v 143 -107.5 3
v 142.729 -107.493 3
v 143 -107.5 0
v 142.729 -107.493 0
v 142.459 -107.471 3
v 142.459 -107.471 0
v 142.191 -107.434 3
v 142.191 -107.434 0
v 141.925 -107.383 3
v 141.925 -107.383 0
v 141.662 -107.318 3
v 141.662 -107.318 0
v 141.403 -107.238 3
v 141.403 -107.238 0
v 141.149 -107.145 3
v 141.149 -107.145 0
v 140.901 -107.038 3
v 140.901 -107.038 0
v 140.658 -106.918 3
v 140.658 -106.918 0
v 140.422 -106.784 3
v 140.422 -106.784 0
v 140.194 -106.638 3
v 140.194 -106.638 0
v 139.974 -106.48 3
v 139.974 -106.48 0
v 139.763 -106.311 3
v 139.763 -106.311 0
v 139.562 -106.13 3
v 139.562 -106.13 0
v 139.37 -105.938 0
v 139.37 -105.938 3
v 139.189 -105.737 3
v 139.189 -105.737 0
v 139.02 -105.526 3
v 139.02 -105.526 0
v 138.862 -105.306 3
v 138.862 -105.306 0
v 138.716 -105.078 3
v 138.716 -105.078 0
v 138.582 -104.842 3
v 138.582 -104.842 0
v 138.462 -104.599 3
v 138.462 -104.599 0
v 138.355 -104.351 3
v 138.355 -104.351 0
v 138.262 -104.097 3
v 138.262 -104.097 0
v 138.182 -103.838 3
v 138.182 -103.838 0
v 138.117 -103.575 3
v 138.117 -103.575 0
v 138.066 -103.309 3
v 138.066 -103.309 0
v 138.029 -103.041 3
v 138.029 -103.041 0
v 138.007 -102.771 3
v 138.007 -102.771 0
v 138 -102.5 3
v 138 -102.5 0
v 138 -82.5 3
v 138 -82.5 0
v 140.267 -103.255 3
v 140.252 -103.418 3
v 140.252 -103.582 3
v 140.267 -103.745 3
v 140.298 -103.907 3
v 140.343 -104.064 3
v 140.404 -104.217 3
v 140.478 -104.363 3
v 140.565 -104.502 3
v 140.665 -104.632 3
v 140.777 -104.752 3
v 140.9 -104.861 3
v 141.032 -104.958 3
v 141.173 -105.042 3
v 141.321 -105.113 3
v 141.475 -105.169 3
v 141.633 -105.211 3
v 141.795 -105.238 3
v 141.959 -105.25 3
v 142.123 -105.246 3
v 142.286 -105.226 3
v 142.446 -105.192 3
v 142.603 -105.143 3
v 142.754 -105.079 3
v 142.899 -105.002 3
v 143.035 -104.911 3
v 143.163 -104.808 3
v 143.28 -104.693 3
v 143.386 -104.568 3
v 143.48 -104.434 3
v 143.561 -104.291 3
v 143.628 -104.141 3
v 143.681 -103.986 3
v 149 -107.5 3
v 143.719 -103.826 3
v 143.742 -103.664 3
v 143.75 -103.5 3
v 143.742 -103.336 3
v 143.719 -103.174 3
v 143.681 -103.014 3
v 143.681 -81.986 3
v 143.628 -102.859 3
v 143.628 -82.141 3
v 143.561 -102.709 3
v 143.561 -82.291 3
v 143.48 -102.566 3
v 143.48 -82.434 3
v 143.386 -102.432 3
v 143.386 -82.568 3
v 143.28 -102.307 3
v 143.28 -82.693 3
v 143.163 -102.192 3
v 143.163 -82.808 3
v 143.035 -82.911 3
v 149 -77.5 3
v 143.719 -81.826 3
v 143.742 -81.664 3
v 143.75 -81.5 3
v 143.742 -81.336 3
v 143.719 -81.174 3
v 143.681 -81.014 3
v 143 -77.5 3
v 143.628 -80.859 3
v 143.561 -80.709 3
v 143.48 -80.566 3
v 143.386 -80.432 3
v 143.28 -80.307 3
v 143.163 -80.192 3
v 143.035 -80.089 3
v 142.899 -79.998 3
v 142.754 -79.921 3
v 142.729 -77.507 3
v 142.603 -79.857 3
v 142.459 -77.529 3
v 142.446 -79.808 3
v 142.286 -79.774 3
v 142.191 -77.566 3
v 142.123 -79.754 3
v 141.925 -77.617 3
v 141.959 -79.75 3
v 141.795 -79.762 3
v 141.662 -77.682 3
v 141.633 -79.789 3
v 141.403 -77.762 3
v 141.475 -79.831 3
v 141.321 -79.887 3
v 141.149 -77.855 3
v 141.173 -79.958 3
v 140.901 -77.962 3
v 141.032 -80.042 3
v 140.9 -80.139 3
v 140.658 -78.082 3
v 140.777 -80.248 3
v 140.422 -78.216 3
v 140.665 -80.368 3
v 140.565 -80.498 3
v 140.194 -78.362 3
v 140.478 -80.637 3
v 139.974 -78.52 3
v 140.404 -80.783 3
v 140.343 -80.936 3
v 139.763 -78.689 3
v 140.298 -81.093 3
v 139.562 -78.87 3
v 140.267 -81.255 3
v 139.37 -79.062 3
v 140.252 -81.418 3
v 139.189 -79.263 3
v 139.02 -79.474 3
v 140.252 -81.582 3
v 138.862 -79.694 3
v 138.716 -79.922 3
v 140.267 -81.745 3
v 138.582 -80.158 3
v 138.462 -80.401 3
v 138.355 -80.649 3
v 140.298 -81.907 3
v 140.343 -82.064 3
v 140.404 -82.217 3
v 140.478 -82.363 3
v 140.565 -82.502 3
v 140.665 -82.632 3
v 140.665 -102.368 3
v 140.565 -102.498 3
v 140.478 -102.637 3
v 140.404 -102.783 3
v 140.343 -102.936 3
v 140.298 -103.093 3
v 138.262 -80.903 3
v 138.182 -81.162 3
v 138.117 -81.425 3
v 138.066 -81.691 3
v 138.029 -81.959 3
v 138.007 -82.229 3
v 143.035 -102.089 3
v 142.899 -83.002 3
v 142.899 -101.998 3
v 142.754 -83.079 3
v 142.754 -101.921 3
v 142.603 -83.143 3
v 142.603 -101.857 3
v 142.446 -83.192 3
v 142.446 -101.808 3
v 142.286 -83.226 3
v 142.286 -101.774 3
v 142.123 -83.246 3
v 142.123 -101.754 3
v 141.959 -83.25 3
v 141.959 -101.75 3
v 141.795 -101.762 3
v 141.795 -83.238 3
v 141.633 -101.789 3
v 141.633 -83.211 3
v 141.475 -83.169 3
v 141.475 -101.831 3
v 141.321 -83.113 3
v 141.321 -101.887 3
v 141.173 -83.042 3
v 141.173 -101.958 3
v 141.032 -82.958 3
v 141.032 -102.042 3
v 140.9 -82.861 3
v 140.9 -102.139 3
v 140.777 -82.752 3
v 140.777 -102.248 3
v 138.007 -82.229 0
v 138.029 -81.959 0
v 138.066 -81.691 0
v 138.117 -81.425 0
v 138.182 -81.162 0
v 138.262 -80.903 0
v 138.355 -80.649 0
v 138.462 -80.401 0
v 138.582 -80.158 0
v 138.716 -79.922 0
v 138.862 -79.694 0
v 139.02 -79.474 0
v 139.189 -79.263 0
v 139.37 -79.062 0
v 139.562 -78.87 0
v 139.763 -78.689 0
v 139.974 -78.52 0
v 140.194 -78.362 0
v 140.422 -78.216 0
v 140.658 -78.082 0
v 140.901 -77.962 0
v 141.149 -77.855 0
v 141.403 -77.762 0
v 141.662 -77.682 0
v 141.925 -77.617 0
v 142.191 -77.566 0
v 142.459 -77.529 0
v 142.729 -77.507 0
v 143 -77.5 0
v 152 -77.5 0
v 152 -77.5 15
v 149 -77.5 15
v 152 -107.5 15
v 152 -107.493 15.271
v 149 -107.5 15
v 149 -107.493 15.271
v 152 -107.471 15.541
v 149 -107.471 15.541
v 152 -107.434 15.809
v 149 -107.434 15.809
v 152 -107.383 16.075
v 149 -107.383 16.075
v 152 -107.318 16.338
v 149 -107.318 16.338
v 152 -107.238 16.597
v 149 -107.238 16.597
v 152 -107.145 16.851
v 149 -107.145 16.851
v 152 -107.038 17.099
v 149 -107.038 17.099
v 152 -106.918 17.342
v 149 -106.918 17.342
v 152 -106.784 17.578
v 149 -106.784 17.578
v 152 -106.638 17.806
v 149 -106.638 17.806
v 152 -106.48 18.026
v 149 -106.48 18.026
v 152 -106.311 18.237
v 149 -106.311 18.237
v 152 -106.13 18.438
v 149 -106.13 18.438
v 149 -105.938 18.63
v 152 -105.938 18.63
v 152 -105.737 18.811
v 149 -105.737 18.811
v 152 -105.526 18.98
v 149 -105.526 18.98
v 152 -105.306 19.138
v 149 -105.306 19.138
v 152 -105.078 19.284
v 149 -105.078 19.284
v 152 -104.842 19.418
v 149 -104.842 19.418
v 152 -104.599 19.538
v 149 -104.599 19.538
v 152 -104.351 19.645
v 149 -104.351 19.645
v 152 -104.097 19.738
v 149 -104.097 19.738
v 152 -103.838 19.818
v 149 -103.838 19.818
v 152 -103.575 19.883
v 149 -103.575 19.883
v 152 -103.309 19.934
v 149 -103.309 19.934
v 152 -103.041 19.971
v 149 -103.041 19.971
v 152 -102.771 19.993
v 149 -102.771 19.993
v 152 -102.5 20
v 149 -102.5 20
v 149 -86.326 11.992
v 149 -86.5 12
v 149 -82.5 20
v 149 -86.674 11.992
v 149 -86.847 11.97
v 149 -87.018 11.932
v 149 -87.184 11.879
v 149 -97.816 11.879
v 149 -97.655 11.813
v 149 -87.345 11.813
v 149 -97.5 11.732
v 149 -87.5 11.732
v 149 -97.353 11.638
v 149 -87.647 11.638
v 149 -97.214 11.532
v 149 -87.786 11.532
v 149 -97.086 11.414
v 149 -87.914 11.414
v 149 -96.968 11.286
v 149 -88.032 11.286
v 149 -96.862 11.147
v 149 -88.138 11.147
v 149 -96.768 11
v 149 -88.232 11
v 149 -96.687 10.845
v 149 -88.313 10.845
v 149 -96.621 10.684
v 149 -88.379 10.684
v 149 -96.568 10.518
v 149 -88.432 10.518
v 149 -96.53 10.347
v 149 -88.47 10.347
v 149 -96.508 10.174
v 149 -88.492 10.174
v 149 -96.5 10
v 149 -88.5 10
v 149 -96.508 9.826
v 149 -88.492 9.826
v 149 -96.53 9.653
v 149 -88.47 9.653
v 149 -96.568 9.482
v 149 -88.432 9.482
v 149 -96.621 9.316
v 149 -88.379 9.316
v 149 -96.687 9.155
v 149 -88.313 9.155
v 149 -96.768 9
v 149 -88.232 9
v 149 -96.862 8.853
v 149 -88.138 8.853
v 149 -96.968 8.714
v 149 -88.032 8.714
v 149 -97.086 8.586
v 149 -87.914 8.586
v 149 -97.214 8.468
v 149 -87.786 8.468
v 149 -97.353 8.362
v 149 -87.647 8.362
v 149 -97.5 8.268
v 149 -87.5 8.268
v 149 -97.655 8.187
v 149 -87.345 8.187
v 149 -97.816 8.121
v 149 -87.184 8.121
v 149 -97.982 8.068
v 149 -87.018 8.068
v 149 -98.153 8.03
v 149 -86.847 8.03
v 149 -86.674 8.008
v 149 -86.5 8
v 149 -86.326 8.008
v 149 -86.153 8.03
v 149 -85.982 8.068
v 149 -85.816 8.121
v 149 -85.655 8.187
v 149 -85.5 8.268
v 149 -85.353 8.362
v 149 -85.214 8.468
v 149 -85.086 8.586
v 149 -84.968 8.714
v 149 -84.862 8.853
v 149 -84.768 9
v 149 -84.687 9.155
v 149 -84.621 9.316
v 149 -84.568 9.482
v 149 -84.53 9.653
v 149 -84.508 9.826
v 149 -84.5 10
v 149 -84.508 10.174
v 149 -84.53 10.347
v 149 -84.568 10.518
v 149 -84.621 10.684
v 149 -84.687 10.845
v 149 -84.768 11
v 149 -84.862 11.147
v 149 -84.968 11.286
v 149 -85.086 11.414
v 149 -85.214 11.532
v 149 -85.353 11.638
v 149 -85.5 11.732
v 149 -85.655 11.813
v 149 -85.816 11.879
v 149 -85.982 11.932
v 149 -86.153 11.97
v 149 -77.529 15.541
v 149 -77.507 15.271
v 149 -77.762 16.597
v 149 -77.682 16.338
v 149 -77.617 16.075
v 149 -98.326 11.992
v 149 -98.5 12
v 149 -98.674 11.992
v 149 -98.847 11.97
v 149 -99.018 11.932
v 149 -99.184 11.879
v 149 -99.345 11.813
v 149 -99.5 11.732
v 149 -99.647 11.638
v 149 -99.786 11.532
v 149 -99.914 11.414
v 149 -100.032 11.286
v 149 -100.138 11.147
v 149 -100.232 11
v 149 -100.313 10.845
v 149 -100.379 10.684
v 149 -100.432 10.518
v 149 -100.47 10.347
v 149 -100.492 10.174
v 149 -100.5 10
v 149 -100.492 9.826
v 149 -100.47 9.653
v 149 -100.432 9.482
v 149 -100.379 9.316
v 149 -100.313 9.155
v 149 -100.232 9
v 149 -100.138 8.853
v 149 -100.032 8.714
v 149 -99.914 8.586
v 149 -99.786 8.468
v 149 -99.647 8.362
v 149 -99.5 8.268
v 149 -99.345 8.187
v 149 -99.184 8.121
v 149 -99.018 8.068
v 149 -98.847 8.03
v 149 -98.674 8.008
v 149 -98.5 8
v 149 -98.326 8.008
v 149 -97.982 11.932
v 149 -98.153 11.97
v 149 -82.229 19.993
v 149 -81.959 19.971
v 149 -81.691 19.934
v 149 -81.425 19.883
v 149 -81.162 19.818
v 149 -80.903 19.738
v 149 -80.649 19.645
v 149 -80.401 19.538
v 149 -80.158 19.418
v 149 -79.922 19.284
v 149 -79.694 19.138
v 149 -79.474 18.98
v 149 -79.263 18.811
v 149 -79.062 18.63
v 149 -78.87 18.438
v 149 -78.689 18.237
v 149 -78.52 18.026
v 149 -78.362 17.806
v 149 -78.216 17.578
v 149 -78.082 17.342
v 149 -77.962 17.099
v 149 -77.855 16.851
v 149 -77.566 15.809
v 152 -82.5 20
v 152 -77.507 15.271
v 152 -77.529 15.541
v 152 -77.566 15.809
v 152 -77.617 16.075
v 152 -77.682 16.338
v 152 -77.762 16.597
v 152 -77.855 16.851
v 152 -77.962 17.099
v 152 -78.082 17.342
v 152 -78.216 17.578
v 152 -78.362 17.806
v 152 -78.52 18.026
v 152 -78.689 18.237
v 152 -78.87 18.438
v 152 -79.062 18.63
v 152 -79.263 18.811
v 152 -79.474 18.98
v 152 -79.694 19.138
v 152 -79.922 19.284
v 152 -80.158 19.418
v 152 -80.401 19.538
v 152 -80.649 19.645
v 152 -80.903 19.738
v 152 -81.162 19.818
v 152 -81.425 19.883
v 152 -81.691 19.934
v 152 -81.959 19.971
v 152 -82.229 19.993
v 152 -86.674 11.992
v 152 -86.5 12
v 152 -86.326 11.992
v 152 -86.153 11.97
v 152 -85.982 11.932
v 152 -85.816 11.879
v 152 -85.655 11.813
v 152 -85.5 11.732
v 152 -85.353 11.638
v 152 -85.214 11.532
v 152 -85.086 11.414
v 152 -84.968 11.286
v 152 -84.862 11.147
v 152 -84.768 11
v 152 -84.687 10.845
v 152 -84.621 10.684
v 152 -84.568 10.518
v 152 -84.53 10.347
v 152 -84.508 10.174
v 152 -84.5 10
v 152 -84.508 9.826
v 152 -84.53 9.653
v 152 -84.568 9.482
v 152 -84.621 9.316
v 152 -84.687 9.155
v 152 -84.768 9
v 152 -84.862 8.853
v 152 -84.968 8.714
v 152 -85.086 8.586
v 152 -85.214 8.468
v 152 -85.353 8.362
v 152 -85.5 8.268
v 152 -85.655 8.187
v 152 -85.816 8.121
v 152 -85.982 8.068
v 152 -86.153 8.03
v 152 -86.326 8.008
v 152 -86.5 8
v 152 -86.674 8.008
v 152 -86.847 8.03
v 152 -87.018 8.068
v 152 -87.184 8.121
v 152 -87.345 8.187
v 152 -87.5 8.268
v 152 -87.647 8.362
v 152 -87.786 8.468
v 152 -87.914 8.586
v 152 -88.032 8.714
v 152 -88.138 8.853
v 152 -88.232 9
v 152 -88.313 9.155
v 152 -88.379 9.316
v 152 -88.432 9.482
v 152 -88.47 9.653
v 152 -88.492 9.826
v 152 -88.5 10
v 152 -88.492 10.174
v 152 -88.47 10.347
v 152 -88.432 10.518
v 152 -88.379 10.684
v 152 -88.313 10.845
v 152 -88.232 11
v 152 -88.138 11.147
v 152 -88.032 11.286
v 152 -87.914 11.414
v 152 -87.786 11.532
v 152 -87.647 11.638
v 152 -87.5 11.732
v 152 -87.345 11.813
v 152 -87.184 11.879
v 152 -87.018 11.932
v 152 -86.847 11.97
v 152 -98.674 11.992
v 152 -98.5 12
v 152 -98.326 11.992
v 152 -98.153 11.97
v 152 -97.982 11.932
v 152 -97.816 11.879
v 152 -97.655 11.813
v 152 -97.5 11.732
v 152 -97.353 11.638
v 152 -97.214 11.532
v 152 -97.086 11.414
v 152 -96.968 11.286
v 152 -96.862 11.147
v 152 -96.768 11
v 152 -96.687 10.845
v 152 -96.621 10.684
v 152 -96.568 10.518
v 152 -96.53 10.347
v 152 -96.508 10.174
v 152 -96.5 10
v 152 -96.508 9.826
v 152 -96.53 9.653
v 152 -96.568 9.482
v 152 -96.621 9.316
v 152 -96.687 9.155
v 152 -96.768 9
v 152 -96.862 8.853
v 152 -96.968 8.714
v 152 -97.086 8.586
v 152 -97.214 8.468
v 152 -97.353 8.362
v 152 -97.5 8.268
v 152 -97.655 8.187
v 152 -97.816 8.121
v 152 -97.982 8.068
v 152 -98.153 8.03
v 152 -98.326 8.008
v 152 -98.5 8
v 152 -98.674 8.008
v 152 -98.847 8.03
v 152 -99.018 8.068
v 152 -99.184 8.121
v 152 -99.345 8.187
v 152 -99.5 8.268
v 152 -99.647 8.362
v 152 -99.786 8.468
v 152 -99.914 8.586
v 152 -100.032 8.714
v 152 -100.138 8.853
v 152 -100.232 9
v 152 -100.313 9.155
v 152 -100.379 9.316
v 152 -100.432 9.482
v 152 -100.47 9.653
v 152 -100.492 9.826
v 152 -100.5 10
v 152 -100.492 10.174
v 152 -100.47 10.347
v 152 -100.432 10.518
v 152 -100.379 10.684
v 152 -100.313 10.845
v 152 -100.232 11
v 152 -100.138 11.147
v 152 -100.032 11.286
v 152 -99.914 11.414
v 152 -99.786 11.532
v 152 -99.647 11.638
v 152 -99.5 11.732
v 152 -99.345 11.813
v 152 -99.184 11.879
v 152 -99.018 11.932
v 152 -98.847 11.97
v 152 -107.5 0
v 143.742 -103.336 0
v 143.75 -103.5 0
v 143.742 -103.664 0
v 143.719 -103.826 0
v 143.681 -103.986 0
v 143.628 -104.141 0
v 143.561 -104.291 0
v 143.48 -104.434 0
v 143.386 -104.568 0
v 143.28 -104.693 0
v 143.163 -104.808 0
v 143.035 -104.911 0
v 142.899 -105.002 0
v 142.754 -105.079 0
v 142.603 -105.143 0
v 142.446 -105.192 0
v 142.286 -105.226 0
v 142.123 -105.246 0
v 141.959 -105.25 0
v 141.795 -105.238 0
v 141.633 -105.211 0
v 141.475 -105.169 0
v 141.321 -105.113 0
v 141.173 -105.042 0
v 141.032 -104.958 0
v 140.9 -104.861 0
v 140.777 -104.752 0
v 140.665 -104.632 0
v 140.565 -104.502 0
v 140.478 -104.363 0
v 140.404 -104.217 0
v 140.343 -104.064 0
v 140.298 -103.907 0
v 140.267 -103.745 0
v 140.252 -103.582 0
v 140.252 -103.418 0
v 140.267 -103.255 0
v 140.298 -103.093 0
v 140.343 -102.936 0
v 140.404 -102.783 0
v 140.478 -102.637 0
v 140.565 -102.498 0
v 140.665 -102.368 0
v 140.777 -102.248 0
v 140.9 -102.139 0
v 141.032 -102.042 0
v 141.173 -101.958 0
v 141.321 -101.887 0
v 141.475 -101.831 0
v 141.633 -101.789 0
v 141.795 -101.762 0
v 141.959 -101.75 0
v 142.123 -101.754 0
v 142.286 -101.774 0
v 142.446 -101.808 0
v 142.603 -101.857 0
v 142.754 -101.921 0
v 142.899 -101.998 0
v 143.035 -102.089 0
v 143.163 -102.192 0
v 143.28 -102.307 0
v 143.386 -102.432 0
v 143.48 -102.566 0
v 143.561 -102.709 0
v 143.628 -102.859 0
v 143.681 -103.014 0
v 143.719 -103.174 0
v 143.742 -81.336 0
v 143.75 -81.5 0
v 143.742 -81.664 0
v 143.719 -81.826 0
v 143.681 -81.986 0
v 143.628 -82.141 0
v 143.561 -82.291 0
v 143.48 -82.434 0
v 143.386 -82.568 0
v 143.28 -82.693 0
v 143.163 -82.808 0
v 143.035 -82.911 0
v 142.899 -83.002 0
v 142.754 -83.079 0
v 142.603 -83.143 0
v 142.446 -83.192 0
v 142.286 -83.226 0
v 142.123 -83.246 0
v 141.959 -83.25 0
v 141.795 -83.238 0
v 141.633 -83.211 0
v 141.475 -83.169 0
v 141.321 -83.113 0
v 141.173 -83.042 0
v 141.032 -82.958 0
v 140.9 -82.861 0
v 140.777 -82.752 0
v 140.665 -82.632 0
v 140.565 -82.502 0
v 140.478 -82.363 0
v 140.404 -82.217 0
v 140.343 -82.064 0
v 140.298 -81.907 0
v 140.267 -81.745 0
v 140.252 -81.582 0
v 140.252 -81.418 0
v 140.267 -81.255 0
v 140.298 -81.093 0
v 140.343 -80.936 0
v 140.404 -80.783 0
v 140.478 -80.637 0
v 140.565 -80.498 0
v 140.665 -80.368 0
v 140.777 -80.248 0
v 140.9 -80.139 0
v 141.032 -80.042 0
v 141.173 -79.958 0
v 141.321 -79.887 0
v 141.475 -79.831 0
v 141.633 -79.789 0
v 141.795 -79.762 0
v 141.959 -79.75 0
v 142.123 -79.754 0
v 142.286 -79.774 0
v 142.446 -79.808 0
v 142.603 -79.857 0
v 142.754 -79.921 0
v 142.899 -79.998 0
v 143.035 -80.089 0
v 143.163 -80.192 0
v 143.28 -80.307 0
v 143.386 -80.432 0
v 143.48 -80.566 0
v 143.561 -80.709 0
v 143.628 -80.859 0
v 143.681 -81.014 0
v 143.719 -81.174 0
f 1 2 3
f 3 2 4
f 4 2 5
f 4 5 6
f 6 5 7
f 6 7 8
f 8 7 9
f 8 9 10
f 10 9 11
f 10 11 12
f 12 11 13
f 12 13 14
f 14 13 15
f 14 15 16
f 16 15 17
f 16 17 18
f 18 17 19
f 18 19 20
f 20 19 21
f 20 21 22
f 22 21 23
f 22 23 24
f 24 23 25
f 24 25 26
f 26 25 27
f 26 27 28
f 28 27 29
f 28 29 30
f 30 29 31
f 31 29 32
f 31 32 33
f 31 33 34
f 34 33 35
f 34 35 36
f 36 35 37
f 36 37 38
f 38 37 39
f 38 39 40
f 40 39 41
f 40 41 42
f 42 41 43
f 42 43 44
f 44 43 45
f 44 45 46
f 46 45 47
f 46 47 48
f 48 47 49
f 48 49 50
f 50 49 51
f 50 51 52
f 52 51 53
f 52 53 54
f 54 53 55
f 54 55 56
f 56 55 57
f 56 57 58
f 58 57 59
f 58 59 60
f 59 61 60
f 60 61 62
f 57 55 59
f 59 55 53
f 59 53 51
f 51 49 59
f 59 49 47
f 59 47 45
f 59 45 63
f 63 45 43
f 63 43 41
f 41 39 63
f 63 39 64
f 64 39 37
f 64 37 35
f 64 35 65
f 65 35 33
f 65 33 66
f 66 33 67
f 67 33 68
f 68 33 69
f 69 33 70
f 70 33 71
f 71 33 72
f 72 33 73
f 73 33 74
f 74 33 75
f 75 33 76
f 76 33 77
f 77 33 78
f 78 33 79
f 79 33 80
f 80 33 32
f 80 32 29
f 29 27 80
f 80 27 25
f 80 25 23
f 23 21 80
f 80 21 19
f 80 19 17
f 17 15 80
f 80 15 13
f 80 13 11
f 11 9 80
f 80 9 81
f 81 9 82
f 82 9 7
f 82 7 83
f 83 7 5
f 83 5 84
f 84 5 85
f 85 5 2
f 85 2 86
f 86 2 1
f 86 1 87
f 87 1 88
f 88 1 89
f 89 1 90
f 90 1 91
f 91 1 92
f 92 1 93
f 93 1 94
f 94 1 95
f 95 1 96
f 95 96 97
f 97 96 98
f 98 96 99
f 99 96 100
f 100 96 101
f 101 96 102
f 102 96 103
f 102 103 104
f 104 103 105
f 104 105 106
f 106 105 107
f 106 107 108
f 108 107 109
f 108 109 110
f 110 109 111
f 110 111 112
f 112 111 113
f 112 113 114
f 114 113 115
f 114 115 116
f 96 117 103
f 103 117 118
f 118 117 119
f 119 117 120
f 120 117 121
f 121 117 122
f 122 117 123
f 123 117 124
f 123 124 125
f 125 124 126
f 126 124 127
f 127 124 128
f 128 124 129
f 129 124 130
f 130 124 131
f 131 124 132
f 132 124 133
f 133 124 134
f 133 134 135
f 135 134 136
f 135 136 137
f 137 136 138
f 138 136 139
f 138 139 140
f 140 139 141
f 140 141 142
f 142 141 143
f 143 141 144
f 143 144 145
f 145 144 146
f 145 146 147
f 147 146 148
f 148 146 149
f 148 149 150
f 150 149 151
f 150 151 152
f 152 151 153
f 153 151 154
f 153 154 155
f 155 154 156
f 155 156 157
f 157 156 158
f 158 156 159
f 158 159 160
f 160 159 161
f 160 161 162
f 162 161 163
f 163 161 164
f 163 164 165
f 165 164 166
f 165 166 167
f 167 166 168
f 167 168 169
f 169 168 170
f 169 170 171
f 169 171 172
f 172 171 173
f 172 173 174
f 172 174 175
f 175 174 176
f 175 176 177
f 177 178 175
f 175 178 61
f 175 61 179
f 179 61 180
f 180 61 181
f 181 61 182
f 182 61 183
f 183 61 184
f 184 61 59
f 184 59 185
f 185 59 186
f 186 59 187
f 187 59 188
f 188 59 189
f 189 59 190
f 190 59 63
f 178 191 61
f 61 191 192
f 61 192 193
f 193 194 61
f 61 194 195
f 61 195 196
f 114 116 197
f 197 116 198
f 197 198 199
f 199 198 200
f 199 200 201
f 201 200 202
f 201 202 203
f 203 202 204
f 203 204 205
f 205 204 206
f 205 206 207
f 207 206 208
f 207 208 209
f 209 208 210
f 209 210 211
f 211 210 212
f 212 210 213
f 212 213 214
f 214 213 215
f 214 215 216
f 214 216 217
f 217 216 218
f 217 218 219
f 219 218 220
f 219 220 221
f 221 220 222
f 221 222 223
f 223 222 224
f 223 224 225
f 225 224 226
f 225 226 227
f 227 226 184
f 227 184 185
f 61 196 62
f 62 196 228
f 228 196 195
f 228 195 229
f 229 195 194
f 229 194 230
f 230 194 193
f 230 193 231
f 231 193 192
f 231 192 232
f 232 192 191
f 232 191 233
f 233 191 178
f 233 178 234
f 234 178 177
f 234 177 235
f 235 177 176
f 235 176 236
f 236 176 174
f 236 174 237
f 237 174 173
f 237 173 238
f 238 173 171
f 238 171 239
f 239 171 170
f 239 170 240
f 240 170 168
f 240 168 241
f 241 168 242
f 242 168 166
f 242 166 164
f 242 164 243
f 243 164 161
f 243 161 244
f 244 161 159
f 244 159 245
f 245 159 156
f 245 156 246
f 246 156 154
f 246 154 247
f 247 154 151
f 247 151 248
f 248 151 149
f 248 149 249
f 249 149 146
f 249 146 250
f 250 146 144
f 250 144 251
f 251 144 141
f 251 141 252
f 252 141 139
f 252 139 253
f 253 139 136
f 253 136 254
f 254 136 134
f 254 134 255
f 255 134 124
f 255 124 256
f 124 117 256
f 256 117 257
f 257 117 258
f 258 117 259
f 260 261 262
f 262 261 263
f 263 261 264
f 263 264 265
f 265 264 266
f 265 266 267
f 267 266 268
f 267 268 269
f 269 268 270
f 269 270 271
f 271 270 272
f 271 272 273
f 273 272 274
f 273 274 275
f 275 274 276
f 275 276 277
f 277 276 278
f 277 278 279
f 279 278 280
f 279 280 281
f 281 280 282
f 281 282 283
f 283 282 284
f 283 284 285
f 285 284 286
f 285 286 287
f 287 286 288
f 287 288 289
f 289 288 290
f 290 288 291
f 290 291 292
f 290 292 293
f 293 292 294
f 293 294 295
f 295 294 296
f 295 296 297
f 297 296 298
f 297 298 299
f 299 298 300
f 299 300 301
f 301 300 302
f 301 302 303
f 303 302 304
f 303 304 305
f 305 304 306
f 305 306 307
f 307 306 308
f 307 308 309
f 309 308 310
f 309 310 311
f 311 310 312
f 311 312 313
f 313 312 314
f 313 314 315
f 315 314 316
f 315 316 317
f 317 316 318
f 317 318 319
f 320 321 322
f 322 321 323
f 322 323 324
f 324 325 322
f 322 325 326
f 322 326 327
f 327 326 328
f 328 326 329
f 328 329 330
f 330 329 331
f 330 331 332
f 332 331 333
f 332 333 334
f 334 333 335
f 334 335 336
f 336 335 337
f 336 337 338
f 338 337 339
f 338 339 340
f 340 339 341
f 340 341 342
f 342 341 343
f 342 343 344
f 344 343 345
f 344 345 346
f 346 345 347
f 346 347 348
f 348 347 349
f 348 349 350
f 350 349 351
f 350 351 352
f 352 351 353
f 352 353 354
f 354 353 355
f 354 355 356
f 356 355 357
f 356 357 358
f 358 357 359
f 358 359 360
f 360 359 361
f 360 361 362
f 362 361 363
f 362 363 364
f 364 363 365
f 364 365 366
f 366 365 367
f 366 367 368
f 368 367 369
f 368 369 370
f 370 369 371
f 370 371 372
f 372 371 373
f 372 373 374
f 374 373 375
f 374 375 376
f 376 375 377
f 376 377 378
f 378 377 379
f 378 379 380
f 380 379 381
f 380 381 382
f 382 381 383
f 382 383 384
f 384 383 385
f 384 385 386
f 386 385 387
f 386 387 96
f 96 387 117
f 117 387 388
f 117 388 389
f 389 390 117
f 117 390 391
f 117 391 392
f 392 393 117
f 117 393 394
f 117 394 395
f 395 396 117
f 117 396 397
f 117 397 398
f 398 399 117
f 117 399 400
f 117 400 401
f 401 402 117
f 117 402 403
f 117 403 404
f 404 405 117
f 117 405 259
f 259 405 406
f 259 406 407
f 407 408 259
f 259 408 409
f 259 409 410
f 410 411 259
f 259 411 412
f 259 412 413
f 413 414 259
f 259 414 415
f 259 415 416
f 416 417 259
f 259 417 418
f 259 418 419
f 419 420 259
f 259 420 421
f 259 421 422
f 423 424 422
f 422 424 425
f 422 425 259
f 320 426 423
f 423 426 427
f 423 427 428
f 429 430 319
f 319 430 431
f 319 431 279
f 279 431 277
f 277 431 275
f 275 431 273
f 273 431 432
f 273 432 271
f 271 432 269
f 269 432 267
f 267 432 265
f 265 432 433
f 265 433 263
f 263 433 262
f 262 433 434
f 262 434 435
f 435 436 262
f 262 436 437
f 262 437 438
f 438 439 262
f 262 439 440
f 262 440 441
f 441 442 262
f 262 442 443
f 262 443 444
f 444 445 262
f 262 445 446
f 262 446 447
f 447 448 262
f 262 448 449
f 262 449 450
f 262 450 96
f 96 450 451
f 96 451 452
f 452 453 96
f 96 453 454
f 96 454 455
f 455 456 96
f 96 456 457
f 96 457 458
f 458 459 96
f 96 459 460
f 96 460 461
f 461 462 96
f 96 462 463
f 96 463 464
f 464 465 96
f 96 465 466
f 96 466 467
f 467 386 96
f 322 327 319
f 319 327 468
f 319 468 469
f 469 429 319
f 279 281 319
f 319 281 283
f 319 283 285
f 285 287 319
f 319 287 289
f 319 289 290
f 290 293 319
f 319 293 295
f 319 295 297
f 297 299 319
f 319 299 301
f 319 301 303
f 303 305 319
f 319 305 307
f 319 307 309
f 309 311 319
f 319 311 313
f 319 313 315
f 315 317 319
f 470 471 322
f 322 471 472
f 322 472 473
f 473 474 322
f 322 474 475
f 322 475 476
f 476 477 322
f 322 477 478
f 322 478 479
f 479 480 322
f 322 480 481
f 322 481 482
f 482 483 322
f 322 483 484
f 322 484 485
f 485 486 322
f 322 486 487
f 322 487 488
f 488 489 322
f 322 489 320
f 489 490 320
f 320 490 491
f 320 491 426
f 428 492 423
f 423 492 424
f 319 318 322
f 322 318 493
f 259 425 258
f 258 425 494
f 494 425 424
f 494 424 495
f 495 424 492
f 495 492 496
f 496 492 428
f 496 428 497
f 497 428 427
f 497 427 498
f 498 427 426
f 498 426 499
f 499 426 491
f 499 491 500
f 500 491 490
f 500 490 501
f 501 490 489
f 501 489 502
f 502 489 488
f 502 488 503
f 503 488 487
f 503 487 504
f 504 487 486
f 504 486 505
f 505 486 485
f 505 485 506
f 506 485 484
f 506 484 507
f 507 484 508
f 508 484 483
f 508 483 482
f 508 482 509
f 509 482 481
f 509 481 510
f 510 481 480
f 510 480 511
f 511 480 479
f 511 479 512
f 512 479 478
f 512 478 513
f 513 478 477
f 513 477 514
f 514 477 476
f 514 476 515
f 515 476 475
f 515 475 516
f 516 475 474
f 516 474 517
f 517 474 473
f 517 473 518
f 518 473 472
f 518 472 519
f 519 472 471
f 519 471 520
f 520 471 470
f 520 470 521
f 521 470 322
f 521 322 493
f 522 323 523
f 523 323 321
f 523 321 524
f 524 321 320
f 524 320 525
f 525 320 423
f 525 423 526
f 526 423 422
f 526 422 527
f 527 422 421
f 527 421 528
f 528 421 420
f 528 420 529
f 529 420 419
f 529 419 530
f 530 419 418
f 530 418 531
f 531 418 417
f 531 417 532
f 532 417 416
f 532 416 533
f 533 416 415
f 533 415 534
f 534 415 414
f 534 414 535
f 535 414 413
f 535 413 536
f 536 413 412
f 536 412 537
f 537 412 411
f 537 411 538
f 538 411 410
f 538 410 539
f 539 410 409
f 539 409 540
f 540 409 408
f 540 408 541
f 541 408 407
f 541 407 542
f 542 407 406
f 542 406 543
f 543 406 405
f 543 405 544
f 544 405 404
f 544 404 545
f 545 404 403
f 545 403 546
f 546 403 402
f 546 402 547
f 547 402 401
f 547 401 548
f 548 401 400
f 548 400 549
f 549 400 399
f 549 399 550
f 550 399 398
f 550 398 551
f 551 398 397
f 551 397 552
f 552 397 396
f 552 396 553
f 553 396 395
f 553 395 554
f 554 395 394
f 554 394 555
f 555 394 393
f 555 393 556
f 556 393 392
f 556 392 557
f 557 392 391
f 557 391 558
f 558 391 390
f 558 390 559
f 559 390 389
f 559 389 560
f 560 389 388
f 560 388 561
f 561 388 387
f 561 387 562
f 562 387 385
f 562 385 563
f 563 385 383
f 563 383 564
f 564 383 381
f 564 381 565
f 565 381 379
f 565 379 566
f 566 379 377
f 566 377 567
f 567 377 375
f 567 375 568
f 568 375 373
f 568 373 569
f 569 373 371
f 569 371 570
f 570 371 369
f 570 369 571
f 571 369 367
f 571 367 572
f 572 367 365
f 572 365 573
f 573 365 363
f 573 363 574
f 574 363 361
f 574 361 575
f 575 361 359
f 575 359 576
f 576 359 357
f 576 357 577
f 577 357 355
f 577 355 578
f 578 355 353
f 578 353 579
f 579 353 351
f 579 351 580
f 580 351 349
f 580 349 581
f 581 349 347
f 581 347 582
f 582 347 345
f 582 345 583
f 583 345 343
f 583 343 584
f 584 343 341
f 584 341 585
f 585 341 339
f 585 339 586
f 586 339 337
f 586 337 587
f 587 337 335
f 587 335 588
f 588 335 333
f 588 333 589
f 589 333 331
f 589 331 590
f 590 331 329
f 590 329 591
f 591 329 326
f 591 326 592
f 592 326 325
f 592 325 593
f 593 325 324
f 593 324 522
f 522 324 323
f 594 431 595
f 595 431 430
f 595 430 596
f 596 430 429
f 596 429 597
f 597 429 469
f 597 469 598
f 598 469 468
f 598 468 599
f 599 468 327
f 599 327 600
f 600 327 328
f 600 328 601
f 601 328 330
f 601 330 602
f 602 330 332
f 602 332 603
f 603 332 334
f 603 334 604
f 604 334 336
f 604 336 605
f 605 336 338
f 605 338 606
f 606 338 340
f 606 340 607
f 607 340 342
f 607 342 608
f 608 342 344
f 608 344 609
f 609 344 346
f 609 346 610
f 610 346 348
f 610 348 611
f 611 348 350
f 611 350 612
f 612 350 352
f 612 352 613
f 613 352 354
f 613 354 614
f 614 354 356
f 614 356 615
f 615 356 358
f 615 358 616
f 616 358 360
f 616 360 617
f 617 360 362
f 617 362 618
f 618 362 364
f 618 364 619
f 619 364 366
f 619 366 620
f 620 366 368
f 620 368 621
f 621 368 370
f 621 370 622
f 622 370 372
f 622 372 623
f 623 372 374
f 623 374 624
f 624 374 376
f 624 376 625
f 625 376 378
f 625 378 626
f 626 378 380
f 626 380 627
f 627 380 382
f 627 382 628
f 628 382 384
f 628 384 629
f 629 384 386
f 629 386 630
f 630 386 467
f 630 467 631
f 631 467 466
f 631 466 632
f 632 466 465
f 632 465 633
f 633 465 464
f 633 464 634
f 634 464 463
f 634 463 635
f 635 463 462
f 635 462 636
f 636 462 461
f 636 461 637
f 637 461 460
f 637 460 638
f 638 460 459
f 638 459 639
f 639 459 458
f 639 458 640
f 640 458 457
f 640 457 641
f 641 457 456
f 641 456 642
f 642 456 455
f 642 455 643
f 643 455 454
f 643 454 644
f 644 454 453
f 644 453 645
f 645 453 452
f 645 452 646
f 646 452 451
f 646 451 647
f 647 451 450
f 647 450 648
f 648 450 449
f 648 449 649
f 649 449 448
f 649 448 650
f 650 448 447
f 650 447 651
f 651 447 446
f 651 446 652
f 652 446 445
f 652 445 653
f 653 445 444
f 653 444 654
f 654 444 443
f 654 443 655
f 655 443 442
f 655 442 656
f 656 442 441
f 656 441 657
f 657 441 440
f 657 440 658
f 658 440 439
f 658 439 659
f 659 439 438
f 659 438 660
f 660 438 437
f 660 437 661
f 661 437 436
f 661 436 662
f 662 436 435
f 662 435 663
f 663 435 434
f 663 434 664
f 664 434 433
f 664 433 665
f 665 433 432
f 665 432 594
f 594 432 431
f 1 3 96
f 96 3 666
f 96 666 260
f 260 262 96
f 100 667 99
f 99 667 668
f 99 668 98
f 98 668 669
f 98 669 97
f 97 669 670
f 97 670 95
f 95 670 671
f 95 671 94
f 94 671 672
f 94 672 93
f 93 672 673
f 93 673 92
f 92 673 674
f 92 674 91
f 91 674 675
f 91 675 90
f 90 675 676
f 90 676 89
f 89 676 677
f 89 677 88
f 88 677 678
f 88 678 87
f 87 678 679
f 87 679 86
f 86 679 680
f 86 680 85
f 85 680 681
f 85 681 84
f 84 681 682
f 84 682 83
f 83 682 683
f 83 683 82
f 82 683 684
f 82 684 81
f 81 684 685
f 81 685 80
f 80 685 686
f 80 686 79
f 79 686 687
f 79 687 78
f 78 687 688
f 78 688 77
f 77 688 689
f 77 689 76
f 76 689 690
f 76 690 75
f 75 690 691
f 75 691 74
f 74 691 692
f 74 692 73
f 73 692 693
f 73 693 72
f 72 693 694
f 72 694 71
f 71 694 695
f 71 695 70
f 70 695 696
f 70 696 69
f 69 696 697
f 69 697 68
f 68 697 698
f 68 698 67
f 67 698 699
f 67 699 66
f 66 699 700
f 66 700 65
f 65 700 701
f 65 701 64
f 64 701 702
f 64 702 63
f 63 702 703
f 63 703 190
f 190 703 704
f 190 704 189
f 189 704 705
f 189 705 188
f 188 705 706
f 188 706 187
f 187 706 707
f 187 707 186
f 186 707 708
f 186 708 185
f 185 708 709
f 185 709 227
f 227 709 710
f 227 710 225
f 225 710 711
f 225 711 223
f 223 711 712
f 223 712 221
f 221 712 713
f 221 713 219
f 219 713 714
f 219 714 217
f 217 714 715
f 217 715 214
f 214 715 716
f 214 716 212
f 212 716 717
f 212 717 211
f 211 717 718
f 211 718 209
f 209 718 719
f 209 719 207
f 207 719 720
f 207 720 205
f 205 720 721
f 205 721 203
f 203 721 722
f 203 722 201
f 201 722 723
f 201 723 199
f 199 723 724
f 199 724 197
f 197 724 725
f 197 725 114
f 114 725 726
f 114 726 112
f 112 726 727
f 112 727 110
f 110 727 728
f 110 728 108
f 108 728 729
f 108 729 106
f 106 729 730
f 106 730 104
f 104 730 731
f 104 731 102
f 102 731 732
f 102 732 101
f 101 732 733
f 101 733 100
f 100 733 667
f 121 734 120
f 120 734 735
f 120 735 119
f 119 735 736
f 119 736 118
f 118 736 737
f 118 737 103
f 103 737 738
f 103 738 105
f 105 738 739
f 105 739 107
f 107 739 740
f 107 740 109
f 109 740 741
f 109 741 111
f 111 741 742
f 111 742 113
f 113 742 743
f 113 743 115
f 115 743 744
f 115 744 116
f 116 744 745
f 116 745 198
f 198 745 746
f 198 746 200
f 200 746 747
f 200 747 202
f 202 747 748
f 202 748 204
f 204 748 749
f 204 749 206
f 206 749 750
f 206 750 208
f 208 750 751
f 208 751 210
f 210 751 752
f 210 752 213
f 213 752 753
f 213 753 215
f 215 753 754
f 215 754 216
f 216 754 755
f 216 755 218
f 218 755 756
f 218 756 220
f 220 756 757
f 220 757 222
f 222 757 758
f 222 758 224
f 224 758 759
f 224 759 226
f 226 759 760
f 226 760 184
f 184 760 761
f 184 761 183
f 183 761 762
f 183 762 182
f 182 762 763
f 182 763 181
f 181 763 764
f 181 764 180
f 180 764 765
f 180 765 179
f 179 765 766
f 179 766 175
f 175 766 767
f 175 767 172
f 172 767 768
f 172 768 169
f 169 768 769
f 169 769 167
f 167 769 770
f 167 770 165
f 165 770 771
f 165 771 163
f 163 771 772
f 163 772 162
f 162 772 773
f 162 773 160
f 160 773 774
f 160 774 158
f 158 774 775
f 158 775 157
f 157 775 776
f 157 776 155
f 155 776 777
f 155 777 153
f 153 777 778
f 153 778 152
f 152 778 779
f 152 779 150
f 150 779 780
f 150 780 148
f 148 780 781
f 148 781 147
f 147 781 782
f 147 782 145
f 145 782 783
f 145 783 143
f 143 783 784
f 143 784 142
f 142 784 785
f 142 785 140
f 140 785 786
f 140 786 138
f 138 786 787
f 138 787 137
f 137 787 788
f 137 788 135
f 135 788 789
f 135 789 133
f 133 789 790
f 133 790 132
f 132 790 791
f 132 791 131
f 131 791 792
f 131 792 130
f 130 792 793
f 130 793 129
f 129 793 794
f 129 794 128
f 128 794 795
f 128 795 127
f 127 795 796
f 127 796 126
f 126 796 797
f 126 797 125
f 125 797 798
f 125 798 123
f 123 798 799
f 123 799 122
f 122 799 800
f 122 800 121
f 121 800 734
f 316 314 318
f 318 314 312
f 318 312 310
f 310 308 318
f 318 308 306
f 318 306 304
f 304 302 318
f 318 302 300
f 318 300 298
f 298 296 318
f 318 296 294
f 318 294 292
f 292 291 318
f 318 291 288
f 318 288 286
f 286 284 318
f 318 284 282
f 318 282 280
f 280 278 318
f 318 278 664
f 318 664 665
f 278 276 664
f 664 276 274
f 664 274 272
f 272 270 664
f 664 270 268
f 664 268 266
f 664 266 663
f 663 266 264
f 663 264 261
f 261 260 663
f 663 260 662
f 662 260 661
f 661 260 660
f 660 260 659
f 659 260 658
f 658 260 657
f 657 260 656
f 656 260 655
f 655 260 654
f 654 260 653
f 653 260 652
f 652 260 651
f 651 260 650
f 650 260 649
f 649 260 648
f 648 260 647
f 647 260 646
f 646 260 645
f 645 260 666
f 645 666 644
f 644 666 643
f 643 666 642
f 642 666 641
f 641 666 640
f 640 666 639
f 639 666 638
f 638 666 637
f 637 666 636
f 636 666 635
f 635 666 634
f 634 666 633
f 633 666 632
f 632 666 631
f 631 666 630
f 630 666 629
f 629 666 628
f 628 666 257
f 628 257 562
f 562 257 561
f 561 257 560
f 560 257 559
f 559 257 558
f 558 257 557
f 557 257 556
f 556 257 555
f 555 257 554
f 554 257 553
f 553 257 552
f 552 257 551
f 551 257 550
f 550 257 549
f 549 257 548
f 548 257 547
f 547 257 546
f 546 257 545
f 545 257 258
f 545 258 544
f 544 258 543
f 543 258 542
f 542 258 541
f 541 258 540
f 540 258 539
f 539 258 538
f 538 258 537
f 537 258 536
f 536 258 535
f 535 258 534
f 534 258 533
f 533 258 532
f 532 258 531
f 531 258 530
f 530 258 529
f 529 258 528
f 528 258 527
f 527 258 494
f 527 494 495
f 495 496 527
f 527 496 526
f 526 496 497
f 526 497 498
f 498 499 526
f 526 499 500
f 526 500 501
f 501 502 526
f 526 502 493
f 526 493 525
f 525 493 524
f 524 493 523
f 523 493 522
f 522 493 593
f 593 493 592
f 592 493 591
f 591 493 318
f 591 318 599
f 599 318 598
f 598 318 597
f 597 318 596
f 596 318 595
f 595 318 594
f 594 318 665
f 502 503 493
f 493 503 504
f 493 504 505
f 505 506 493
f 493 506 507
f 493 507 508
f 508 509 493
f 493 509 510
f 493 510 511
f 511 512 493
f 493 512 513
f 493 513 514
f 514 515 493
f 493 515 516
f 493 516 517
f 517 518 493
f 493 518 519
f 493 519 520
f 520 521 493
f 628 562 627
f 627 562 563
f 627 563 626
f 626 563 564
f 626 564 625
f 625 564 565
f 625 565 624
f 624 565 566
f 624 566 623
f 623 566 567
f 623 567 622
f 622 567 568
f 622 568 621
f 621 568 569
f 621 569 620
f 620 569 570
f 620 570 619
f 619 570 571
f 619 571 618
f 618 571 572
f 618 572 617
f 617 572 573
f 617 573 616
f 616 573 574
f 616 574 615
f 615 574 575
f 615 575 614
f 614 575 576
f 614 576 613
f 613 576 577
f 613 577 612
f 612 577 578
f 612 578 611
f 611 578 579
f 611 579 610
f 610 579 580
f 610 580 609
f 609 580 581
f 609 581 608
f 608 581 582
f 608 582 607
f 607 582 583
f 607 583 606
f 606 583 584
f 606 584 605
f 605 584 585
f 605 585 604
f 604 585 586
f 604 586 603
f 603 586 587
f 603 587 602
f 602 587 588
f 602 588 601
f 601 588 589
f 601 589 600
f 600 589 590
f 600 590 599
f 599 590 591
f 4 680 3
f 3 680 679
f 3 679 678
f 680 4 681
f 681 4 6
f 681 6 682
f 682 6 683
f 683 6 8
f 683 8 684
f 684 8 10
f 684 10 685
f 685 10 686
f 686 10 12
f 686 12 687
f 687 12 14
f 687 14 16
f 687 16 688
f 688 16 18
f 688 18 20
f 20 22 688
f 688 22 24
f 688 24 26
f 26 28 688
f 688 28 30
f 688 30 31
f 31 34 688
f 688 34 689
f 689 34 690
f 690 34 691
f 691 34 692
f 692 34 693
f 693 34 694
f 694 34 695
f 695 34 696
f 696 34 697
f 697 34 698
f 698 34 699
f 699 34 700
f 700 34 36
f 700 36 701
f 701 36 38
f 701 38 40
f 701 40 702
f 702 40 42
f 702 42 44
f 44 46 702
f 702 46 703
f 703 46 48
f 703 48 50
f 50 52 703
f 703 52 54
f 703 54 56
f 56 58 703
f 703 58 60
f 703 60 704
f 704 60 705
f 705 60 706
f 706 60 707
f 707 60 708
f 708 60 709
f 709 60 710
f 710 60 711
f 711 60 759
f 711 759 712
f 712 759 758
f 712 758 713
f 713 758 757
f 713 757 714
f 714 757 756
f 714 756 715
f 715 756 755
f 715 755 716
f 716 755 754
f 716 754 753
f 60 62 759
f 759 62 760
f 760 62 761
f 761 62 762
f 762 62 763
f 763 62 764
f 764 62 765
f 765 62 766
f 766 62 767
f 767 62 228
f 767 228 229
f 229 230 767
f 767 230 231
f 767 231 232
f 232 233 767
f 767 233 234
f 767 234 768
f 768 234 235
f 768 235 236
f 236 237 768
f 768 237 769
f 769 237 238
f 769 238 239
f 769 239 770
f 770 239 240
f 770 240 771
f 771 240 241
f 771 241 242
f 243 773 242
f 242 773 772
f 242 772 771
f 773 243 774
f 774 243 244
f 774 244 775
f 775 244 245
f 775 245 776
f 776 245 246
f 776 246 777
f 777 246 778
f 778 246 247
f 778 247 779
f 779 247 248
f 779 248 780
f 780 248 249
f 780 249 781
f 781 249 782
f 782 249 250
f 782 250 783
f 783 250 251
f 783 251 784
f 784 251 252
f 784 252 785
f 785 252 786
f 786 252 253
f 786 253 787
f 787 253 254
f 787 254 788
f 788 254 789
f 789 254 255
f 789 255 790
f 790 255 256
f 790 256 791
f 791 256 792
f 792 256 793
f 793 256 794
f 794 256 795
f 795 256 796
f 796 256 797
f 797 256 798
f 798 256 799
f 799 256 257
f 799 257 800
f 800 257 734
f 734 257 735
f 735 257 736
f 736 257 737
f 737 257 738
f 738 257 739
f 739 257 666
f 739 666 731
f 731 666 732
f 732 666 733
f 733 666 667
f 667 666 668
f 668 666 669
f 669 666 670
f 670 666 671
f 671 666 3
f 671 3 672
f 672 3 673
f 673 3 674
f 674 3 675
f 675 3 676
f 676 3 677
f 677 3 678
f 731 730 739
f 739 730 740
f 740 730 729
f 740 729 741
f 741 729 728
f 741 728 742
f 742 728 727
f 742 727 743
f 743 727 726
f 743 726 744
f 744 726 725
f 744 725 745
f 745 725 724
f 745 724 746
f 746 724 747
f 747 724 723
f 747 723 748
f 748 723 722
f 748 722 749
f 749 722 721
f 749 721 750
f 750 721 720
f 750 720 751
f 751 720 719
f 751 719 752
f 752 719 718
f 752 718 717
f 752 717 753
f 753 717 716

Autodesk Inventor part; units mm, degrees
ref_plane "YZ Plane" through (0, 0, 0) normal (1, 0, 0) x (0, 1, 0)
ref_plane "XZ Plane" through (0, 0, 0) normal (0, 1, 0) x (-1, 0, 0)
ref_plane "XY Plane" through (0, 0, 0) normal (0, 0, 1) x (1, 0, 0)
sketch "Эскиз1" plane through (0, 0, 0) normal (0, 0, 1) x (1, 0, 0)
  circle A0 centre (142, -81.5) radius 3.75 construction
  circle A1 centre (142, -103.5) radius 3.75 construction
  circle A2 centre (142, -81.5) radius 1.75
  circle A3 centre (142, -103.5) radius 1.75
  line L0 (138, -77.5) -> (152, -77.5)
  line L1 (152, -77.5) -> (152, -107.5)
  line L2 (152, -107.5) -> (138, -107.5)
  line L3 (138, -107.5) -> (138, -77.5)
  line L4 (152, -77.5) -> (149, -77.5)
  line L5 (149, -77.5) -> (149, -107.5)
  line L6 (149, -107.5) -> (152, -107.5)
  line L7 (152, -107.5) -> (152, -77.5)
  point P0 (0, 0)
  dimension "d0" = 3.5
  dimension "d1" = 3.5
  dimension "d2" = 4
  dimension "d3" = 10
  dimension "d4" = 4
  dimension "d5" = 4
  dimension "d6" = 3
extrude "Выдавливание1" add sketch "Эскиз1" along normal blind 3
extrude "Выдавливание2" add sketch "Эскиз1" along normal blind 20 contours L0 L1 L2 L5
sketch "Эскиз2" plane through (149, -107.5, 3) normal (-1, 0, 0) x (0, 0, 1)
  circle A0 centre (7, 21) radius 2
  circle A1 centre (7, 9) radius 2
  line L0 (0, 30) -> (17, 30) projected
  line L1 (0, 0) -> (17, 0) projected
  line L2 (17, 30) -> (17, 0) projected
  point P0 (-3, 107.5)
  dimension "d11" = 4
  dimension "d12" = 4
  dimension "d13" = 12
  dimension "d14" = 9
  dimension "d16" = 10
  dimension "d17" = 10
extrude "Выдавливание3" cut sketch "Эскиз2" against normal blind 10
fillet "Сопряжение1" radius 5 4 edges at (150.5, -77.5, 20) (150.5, -107.5, 20) (138, -77.5, 1.5) (138, -107.5, 1.5)
properties part number "креление кабельканала"
